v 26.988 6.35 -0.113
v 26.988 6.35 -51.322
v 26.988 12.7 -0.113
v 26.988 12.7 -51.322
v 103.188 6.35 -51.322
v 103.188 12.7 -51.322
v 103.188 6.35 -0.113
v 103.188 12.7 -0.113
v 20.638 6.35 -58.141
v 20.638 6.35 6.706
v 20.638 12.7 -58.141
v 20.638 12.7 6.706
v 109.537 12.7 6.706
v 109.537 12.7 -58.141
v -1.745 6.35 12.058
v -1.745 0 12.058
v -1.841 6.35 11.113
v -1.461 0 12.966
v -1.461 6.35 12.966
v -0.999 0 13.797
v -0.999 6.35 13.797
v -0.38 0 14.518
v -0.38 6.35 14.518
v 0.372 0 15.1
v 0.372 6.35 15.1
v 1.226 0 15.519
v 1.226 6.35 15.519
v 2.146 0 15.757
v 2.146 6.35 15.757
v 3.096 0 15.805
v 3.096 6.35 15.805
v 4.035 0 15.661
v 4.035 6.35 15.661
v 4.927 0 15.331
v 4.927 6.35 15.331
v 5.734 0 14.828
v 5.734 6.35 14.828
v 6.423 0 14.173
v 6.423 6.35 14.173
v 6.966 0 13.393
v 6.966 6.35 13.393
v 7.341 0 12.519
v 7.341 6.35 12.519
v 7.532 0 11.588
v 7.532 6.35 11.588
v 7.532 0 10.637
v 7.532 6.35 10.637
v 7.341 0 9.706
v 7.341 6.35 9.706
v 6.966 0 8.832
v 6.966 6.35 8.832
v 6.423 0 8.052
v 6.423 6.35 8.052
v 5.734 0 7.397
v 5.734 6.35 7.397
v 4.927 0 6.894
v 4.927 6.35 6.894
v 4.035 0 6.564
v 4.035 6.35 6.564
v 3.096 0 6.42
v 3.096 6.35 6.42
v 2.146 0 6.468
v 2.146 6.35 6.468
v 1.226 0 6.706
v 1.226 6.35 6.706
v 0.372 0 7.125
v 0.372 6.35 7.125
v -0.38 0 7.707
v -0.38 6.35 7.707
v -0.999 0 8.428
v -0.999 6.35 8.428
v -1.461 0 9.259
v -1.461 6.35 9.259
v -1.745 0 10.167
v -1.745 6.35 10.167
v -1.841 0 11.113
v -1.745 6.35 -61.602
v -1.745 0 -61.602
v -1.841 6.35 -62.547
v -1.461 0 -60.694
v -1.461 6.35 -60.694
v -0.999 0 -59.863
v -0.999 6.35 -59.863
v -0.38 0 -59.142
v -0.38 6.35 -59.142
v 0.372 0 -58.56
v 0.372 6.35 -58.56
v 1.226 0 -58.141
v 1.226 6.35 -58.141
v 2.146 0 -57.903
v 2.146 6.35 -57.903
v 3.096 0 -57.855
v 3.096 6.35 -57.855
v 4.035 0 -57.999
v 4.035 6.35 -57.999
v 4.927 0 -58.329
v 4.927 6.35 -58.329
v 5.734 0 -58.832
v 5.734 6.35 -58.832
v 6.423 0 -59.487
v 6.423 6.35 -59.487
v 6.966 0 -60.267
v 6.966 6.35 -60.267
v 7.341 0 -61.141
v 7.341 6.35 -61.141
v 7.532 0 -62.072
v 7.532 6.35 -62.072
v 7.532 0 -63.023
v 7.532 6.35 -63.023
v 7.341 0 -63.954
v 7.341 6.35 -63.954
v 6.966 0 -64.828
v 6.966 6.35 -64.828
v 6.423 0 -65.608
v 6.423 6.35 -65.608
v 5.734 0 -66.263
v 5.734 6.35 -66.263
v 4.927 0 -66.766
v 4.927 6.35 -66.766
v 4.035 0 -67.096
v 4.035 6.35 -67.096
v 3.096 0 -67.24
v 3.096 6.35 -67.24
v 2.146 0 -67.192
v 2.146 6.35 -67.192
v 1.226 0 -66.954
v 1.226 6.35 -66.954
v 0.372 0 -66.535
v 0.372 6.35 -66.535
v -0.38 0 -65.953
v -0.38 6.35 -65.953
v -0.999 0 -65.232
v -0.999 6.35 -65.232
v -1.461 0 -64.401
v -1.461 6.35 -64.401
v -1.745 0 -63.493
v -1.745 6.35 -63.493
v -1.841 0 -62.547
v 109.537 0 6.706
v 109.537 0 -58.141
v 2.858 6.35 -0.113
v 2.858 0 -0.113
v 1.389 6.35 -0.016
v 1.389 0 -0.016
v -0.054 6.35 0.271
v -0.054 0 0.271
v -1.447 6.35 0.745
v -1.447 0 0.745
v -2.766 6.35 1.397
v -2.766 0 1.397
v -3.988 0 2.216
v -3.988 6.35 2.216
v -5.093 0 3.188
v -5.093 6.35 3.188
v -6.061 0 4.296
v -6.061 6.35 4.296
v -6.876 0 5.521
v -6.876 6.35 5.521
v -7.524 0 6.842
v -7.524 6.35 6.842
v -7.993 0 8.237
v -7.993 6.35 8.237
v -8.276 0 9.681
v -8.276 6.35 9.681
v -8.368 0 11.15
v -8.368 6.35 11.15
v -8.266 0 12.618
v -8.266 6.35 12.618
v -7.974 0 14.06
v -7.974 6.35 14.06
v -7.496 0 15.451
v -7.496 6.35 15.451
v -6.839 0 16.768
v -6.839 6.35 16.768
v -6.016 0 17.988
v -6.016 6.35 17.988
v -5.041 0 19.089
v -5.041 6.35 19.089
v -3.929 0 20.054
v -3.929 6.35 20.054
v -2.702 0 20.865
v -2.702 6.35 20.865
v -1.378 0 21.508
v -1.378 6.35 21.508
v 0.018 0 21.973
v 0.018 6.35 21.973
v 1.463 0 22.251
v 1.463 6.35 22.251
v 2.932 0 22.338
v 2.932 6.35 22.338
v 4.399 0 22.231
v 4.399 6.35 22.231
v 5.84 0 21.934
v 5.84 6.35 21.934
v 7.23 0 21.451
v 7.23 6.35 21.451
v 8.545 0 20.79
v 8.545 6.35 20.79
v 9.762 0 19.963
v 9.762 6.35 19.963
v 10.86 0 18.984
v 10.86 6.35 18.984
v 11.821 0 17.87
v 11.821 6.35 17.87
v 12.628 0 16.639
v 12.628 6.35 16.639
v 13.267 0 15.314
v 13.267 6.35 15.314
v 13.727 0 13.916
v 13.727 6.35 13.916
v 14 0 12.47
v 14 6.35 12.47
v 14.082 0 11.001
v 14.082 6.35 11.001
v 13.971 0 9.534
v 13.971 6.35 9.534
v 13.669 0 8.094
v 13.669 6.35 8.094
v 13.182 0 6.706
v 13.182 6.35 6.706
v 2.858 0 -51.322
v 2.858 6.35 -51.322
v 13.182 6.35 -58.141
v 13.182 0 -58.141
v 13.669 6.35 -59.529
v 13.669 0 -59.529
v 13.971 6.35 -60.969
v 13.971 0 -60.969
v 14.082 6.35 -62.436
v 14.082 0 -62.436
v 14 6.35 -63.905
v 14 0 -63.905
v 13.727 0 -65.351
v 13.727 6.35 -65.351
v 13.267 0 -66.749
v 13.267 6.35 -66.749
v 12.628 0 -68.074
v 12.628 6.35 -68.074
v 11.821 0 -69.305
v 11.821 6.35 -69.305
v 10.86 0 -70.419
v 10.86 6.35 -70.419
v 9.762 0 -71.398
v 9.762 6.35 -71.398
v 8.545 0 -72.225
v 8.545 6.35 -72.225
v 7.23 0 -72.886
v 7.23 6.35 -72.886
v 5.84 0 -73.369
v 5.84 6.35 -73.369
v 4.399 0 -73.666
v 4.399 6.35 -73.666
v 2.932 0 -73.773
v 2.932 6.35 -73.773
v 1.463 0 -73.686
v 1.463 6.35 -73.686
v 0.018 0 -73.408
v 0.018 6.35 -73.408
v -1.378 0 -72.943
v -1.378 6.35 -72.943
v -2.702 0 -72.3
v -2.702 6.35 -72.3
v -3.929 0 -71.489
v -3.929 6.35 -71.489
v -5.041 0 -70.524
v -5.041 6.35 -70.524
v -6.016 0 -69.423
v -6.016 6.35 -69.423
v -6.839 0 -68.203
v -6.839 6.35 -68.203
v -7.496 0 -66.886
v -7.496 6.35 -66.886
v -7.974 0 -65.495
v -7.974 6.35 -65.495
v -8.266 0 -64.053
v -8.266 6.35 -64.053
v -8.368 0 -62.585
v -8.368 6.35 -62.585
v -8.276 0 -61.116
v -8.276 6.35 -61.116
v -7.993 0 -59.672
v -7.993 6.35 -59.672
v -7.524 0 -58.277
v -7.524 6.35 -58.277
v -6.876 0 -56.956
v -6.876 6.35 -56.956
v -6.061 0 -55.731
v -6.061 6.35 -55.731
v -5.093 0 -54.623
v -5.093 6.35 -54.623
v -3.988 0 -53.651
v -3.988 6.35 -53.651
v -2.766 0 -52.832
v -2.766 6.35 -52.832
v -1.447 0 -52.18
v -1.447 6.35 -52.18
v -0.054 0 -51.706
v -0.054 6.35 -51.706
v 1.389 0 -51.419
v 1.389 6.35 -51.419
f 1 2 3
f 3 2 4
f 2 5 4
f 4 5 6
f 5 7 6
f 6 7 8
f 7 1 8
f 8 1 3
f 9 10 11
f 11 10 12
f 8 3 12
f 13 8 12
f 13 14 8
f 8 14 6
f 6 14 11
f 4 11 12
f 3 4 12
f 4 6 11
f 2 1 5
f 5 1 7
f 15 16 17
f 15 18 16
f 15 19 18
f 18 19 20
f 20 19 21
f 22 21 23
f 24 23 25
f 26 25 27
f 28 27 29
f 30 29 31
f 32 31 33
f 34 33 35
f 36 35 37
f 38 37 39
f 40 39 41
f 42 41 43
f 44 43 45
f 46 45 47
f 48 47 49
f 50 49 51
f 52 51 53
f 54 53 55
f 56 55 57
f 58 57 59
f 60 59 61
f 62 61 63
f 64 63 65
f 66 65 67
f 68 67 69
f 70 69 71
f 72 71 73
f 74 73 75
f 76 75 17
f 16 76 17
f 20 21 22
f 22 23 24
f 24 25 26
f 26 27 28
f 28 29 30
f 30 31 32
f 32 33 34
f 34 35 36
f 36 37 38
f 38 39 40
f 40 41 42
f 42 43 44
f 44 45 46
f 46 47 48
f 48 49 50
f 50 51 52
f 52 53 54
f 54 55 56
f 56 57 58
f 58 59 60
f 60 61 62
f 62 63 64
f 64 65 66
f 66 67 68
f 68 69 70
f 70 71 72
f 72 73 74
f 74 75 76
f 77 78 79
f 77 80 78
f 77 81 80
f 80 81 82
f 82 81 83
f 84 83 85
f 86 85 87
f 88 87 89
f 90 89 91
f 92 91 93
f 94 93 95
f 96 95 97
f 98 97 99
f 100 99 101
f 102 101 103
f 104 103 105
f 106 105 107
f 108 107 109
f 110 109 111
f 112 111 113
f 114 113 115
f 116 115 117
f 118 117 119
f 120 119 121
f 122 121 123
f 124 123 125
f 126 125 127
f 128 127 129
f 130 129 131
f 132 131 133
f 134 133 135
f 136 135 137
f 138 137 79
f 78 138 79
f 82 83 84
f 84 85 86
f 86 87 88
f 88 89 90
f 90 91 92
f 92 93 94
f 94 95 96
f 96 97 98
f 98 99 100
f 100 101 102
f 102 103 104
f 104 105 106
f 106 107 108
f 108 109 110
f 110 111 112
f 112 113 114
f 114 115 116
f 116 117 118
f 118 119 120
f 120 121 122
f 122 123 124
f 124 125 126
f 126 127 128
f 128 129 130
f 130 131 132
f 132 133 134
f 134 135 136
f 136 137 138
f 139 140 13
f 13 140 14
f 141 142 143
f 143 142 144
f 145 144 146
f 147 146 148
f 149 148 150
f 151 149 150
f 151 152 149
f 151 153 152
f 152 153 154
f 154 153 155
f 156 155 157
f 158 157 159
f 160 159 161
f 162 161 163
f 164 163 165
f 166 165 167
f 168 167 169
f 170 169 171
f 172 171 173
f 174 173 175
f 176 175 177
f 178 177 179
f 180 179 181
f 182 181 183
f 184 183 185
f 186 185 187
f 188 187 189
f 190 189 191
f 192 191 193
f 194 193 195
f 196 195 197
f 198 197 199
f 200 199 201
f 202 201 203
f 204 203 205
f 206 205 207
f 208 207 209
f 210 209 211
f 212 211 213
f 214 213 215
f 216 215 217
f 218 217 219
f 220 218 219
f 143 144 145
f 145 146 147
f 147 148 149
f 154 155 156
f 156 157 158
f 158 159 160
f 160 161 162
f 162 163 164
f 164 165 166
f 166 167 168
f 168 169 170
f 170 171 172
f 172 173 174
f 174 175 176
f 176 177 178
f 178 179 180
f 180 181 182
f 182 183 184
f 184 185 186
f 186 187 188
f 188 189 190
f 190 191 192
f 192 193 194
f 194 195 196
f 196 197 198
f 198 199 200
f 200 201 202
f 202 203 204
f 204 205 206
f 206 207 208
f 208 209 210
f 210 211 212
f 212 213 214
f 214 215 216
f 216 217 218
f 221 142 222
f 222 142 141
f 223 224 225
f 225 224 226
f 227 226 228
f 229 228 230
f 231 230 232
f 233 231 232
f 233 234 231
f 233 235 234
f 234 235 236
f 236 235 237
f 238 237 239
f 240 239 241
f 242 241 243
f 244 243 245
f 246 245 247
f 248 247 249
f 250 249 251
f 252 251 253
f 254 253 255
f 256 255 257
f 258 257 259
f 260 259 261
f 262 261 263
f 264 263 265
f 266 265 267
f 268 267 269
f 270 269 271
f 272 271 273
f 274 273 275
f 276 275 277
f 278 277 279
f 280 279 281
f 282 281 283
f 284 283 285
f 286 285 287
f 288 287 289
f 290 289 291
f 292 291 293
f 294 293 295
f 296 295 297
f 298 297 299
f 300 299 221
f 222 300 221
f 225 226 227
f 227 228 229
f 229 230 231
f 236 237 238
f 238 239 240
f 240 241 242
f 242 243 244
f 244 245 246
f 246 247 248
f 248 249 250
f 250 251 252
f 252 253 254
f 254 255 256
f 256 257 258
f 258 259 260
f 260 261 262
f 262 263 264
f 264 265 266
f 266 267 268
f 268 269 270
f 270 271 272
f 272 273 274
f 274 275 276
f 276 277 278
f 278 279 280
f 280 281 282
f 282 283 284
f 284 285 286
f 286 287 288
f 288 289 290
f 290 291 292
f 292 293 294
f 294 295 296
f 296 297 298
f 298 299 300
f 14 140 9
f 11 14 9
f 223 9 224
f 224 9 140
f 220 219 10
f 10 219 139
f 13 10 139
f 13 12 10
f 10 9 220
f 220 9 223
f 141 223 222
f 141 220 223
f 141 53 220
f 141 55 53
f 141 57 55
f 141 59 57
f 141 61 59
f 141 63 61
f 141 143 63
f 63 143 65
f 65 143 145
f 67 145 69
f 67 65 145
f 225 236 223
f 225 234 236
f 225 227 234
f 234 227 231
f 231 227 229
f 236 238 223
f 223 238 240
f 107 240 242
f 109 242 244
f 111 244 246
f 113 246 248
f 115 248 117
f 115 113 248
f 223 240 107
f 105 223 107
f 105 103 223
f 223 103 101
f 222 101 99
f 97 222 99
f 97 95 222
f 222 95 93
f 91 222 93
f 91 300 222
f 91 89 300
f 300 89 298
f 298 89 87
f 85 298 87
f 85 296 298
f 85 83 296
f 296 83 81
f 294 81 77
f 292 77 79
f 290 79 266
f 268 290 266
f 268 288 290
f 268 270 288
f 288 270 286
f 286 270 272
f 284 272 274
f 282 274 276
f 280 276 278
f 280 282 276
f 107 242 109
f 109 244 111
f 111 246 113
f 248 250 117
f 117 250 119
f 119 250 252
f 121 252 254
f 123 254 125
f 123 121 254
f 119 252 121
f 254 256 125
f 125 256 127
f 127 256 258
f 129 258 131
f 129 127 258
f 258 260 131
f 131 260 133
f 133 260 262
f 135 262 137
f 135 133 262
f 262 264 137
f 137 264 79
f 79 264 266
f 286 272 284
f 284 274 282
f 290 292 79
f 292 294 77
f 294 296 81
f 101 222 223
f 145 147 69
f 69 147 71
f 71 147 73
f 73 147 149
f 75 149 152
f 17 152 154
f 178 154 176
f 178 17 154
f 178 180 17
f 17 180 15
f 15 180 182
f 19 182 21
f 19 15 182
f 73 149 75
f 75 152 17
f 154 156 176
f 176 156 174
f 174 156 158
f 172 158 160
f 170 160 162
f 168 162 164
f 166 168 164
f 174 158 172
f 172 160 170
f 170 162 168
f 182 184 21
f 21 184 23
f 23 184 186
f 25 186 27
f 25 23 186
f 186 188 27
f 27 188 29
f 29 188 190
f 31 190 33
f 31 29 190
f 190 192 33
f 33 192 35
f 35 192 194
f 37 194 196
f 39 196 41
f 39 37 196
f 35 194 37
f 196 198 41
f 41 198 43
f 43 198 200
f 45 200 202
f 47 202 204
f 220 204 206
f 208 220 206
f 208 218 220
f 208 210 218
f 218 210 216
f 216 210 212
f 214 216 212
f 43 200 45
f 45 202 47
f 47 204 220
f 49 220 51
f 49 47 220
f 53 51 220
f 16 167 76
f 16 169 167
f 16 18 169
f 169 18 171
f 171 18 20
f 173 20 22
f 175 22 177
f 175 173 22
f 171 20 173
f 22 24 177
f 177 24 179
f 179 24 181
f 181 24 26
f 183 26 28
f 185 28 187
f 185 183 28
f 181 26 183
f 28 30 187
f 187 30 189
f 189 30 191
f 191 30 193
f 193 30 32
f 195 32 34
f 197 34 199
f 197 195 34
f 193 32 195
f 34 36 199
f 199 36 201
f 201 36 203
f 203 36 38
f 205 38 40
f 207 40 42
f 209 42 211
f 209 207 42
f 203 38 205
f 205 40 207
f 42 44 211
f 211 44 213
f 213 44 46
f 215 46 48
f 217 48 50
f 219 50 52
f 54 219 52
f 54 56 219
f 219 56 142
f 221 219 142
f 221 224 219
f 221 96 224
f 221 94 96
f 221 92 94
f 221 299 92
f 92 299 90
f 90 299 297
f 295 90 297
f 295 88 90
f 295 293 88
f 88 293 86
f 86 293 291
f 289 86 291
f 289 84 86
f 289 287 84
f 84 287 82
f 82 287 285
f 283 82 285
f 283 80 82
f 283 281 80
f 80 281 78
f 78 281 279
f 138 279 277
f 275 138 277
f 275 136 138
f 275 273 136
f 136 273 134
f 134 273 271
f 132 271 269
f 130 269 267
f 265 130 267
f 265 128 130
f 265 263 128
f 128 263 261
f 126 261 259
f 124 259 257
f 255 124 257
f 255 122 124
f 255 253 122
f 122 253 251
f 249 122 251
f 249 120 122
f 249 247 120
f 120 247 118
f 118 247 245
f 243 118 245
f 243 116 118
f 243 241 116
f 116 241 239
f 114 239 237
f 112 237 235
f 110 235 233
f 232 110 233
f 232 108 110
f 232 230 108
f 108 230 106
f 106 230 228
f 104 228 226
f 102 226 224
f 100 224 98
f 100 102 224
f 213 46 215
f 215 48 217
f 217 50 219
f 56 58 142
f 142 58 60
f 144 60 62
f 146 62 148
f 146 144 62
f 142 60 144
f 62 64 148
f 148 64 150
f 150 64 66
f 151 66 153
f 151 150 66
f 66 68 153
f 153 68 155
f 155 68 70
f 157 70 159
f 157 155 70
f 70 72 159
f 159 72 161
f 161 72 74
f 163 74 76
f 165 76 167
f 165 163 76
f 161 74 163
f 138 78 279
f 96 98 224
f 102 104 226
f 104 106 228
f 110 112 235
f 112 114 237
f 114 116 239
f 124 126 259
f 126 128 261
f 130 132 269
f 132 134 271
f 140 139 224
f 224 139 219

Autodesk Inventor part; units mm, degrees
ref_plane "YZ Plane" through (0, 0, 0) normal (1, 0, 0) x (0, 1, 0)
ref_plane "XZ Plane" through (0, 0, 0) normal (0, 1, 0) x (-1, 0, 0)
ref_plane "XY Plane" through (0, 0, 0) normal (0, 0, 1) x (1, 0, 0)
sketch "Sketch1" plane through (0, 0, 0) normal (0, 1, 0) x (-1, 0, 0)
  circle A0 centre (-2.8575, -62.5475) radius 4.699
  circle A1 centre (-2.8575, 11.1125) radius 4.699
  arc A2 (-2.8575, -0.1128) -> (-13.1816, 6.7056) centre (-2.8575, 11.1125) ccw
  arc A3 (-13.1816, -58.1406) -> (-2.8575, -51.3222) centre (-2.8575, -62.5475) ccw
  line L0 (-13.1816, 6.7056) -> (-109.5375, 6.7056)
  line L1 (-109.5375, 6.7056) -> (-109.5375, -58.1406)
  line L2 (-109.5375, -58.1406) -> (-13.1816, -58.1406)
  line L3 (-2.8575, -51.3222) -> (-2.8575, -0.1128)
  line L4 (-2.8575, -0.1128) -> (-2.8575, -51.3222)
  line L5 (-103.1875, -51.3222) -> (-26.9875, -51.3222)
  line L6 (-26.9875, -51.3222) -> (-26.9875, -0.1128)
  line L7 (-26.9875, -0.1128) -> (-103.1875, -0.1128)
  line L8 (-103.1875, -0.1128) -> (-103.1875, -51.3222)
  line L9 (-20.6375, 6.7056) -> (-20.6375, -58.1406)
  point P0 (0, 0)
  dimension "d1" = 9.398
  dimension "d2" = 9.398
  dimension "d4" = 6.35
extrude "Extrusion1" add sketch "Sketch1" along normal blind 6.35 contours L3 A3 L2 L9 L0 A2 | L9 L2 L1 L0 | L8 L7 L6 L5
sketch "Sketch2" plane through (0, 6.35, 0) normal (0, 1, 0) x (1, 0, 0)
  line L0 (26.9875, 0.1128) -> (103.1875, 0.1128)
  line L1 (103.1875, 0.1128) -> (103.1875, 51.3222)
  line L2 (103.1875, 51.3222) -> (26.9875, 51.3222)
  line L3 (26.9875, 51.3222) -> (26.9875, 0.1128)
  line L4 (13.1816, -6.7056) -> (109.5375, -6.7056) projected
  line L5 (20.6375, -6.7056) -> (20.6375, 58.7375)
  line L6 (109.5375, 58.1406) -> (13.1816, 58.1406) projected
  line L7 (20.6375, -6.7056) -> (109.5375, -6.7056)
  line L8 (109.5375, -6.7056) -> (109.5375, 58.1406)
  line L9 (109.5375, 58.1406) -> (20.6375, 58.1406)
  line L10 (20.6375, 58.1406) -> (20.6375, -6.7056)
  point P0 (0, 0)
  dimension "d7" = 6.35
extrude "Extrusion2" add sketch "Sketch2" along normal blind 6.35
properties part number "ignition mount"
